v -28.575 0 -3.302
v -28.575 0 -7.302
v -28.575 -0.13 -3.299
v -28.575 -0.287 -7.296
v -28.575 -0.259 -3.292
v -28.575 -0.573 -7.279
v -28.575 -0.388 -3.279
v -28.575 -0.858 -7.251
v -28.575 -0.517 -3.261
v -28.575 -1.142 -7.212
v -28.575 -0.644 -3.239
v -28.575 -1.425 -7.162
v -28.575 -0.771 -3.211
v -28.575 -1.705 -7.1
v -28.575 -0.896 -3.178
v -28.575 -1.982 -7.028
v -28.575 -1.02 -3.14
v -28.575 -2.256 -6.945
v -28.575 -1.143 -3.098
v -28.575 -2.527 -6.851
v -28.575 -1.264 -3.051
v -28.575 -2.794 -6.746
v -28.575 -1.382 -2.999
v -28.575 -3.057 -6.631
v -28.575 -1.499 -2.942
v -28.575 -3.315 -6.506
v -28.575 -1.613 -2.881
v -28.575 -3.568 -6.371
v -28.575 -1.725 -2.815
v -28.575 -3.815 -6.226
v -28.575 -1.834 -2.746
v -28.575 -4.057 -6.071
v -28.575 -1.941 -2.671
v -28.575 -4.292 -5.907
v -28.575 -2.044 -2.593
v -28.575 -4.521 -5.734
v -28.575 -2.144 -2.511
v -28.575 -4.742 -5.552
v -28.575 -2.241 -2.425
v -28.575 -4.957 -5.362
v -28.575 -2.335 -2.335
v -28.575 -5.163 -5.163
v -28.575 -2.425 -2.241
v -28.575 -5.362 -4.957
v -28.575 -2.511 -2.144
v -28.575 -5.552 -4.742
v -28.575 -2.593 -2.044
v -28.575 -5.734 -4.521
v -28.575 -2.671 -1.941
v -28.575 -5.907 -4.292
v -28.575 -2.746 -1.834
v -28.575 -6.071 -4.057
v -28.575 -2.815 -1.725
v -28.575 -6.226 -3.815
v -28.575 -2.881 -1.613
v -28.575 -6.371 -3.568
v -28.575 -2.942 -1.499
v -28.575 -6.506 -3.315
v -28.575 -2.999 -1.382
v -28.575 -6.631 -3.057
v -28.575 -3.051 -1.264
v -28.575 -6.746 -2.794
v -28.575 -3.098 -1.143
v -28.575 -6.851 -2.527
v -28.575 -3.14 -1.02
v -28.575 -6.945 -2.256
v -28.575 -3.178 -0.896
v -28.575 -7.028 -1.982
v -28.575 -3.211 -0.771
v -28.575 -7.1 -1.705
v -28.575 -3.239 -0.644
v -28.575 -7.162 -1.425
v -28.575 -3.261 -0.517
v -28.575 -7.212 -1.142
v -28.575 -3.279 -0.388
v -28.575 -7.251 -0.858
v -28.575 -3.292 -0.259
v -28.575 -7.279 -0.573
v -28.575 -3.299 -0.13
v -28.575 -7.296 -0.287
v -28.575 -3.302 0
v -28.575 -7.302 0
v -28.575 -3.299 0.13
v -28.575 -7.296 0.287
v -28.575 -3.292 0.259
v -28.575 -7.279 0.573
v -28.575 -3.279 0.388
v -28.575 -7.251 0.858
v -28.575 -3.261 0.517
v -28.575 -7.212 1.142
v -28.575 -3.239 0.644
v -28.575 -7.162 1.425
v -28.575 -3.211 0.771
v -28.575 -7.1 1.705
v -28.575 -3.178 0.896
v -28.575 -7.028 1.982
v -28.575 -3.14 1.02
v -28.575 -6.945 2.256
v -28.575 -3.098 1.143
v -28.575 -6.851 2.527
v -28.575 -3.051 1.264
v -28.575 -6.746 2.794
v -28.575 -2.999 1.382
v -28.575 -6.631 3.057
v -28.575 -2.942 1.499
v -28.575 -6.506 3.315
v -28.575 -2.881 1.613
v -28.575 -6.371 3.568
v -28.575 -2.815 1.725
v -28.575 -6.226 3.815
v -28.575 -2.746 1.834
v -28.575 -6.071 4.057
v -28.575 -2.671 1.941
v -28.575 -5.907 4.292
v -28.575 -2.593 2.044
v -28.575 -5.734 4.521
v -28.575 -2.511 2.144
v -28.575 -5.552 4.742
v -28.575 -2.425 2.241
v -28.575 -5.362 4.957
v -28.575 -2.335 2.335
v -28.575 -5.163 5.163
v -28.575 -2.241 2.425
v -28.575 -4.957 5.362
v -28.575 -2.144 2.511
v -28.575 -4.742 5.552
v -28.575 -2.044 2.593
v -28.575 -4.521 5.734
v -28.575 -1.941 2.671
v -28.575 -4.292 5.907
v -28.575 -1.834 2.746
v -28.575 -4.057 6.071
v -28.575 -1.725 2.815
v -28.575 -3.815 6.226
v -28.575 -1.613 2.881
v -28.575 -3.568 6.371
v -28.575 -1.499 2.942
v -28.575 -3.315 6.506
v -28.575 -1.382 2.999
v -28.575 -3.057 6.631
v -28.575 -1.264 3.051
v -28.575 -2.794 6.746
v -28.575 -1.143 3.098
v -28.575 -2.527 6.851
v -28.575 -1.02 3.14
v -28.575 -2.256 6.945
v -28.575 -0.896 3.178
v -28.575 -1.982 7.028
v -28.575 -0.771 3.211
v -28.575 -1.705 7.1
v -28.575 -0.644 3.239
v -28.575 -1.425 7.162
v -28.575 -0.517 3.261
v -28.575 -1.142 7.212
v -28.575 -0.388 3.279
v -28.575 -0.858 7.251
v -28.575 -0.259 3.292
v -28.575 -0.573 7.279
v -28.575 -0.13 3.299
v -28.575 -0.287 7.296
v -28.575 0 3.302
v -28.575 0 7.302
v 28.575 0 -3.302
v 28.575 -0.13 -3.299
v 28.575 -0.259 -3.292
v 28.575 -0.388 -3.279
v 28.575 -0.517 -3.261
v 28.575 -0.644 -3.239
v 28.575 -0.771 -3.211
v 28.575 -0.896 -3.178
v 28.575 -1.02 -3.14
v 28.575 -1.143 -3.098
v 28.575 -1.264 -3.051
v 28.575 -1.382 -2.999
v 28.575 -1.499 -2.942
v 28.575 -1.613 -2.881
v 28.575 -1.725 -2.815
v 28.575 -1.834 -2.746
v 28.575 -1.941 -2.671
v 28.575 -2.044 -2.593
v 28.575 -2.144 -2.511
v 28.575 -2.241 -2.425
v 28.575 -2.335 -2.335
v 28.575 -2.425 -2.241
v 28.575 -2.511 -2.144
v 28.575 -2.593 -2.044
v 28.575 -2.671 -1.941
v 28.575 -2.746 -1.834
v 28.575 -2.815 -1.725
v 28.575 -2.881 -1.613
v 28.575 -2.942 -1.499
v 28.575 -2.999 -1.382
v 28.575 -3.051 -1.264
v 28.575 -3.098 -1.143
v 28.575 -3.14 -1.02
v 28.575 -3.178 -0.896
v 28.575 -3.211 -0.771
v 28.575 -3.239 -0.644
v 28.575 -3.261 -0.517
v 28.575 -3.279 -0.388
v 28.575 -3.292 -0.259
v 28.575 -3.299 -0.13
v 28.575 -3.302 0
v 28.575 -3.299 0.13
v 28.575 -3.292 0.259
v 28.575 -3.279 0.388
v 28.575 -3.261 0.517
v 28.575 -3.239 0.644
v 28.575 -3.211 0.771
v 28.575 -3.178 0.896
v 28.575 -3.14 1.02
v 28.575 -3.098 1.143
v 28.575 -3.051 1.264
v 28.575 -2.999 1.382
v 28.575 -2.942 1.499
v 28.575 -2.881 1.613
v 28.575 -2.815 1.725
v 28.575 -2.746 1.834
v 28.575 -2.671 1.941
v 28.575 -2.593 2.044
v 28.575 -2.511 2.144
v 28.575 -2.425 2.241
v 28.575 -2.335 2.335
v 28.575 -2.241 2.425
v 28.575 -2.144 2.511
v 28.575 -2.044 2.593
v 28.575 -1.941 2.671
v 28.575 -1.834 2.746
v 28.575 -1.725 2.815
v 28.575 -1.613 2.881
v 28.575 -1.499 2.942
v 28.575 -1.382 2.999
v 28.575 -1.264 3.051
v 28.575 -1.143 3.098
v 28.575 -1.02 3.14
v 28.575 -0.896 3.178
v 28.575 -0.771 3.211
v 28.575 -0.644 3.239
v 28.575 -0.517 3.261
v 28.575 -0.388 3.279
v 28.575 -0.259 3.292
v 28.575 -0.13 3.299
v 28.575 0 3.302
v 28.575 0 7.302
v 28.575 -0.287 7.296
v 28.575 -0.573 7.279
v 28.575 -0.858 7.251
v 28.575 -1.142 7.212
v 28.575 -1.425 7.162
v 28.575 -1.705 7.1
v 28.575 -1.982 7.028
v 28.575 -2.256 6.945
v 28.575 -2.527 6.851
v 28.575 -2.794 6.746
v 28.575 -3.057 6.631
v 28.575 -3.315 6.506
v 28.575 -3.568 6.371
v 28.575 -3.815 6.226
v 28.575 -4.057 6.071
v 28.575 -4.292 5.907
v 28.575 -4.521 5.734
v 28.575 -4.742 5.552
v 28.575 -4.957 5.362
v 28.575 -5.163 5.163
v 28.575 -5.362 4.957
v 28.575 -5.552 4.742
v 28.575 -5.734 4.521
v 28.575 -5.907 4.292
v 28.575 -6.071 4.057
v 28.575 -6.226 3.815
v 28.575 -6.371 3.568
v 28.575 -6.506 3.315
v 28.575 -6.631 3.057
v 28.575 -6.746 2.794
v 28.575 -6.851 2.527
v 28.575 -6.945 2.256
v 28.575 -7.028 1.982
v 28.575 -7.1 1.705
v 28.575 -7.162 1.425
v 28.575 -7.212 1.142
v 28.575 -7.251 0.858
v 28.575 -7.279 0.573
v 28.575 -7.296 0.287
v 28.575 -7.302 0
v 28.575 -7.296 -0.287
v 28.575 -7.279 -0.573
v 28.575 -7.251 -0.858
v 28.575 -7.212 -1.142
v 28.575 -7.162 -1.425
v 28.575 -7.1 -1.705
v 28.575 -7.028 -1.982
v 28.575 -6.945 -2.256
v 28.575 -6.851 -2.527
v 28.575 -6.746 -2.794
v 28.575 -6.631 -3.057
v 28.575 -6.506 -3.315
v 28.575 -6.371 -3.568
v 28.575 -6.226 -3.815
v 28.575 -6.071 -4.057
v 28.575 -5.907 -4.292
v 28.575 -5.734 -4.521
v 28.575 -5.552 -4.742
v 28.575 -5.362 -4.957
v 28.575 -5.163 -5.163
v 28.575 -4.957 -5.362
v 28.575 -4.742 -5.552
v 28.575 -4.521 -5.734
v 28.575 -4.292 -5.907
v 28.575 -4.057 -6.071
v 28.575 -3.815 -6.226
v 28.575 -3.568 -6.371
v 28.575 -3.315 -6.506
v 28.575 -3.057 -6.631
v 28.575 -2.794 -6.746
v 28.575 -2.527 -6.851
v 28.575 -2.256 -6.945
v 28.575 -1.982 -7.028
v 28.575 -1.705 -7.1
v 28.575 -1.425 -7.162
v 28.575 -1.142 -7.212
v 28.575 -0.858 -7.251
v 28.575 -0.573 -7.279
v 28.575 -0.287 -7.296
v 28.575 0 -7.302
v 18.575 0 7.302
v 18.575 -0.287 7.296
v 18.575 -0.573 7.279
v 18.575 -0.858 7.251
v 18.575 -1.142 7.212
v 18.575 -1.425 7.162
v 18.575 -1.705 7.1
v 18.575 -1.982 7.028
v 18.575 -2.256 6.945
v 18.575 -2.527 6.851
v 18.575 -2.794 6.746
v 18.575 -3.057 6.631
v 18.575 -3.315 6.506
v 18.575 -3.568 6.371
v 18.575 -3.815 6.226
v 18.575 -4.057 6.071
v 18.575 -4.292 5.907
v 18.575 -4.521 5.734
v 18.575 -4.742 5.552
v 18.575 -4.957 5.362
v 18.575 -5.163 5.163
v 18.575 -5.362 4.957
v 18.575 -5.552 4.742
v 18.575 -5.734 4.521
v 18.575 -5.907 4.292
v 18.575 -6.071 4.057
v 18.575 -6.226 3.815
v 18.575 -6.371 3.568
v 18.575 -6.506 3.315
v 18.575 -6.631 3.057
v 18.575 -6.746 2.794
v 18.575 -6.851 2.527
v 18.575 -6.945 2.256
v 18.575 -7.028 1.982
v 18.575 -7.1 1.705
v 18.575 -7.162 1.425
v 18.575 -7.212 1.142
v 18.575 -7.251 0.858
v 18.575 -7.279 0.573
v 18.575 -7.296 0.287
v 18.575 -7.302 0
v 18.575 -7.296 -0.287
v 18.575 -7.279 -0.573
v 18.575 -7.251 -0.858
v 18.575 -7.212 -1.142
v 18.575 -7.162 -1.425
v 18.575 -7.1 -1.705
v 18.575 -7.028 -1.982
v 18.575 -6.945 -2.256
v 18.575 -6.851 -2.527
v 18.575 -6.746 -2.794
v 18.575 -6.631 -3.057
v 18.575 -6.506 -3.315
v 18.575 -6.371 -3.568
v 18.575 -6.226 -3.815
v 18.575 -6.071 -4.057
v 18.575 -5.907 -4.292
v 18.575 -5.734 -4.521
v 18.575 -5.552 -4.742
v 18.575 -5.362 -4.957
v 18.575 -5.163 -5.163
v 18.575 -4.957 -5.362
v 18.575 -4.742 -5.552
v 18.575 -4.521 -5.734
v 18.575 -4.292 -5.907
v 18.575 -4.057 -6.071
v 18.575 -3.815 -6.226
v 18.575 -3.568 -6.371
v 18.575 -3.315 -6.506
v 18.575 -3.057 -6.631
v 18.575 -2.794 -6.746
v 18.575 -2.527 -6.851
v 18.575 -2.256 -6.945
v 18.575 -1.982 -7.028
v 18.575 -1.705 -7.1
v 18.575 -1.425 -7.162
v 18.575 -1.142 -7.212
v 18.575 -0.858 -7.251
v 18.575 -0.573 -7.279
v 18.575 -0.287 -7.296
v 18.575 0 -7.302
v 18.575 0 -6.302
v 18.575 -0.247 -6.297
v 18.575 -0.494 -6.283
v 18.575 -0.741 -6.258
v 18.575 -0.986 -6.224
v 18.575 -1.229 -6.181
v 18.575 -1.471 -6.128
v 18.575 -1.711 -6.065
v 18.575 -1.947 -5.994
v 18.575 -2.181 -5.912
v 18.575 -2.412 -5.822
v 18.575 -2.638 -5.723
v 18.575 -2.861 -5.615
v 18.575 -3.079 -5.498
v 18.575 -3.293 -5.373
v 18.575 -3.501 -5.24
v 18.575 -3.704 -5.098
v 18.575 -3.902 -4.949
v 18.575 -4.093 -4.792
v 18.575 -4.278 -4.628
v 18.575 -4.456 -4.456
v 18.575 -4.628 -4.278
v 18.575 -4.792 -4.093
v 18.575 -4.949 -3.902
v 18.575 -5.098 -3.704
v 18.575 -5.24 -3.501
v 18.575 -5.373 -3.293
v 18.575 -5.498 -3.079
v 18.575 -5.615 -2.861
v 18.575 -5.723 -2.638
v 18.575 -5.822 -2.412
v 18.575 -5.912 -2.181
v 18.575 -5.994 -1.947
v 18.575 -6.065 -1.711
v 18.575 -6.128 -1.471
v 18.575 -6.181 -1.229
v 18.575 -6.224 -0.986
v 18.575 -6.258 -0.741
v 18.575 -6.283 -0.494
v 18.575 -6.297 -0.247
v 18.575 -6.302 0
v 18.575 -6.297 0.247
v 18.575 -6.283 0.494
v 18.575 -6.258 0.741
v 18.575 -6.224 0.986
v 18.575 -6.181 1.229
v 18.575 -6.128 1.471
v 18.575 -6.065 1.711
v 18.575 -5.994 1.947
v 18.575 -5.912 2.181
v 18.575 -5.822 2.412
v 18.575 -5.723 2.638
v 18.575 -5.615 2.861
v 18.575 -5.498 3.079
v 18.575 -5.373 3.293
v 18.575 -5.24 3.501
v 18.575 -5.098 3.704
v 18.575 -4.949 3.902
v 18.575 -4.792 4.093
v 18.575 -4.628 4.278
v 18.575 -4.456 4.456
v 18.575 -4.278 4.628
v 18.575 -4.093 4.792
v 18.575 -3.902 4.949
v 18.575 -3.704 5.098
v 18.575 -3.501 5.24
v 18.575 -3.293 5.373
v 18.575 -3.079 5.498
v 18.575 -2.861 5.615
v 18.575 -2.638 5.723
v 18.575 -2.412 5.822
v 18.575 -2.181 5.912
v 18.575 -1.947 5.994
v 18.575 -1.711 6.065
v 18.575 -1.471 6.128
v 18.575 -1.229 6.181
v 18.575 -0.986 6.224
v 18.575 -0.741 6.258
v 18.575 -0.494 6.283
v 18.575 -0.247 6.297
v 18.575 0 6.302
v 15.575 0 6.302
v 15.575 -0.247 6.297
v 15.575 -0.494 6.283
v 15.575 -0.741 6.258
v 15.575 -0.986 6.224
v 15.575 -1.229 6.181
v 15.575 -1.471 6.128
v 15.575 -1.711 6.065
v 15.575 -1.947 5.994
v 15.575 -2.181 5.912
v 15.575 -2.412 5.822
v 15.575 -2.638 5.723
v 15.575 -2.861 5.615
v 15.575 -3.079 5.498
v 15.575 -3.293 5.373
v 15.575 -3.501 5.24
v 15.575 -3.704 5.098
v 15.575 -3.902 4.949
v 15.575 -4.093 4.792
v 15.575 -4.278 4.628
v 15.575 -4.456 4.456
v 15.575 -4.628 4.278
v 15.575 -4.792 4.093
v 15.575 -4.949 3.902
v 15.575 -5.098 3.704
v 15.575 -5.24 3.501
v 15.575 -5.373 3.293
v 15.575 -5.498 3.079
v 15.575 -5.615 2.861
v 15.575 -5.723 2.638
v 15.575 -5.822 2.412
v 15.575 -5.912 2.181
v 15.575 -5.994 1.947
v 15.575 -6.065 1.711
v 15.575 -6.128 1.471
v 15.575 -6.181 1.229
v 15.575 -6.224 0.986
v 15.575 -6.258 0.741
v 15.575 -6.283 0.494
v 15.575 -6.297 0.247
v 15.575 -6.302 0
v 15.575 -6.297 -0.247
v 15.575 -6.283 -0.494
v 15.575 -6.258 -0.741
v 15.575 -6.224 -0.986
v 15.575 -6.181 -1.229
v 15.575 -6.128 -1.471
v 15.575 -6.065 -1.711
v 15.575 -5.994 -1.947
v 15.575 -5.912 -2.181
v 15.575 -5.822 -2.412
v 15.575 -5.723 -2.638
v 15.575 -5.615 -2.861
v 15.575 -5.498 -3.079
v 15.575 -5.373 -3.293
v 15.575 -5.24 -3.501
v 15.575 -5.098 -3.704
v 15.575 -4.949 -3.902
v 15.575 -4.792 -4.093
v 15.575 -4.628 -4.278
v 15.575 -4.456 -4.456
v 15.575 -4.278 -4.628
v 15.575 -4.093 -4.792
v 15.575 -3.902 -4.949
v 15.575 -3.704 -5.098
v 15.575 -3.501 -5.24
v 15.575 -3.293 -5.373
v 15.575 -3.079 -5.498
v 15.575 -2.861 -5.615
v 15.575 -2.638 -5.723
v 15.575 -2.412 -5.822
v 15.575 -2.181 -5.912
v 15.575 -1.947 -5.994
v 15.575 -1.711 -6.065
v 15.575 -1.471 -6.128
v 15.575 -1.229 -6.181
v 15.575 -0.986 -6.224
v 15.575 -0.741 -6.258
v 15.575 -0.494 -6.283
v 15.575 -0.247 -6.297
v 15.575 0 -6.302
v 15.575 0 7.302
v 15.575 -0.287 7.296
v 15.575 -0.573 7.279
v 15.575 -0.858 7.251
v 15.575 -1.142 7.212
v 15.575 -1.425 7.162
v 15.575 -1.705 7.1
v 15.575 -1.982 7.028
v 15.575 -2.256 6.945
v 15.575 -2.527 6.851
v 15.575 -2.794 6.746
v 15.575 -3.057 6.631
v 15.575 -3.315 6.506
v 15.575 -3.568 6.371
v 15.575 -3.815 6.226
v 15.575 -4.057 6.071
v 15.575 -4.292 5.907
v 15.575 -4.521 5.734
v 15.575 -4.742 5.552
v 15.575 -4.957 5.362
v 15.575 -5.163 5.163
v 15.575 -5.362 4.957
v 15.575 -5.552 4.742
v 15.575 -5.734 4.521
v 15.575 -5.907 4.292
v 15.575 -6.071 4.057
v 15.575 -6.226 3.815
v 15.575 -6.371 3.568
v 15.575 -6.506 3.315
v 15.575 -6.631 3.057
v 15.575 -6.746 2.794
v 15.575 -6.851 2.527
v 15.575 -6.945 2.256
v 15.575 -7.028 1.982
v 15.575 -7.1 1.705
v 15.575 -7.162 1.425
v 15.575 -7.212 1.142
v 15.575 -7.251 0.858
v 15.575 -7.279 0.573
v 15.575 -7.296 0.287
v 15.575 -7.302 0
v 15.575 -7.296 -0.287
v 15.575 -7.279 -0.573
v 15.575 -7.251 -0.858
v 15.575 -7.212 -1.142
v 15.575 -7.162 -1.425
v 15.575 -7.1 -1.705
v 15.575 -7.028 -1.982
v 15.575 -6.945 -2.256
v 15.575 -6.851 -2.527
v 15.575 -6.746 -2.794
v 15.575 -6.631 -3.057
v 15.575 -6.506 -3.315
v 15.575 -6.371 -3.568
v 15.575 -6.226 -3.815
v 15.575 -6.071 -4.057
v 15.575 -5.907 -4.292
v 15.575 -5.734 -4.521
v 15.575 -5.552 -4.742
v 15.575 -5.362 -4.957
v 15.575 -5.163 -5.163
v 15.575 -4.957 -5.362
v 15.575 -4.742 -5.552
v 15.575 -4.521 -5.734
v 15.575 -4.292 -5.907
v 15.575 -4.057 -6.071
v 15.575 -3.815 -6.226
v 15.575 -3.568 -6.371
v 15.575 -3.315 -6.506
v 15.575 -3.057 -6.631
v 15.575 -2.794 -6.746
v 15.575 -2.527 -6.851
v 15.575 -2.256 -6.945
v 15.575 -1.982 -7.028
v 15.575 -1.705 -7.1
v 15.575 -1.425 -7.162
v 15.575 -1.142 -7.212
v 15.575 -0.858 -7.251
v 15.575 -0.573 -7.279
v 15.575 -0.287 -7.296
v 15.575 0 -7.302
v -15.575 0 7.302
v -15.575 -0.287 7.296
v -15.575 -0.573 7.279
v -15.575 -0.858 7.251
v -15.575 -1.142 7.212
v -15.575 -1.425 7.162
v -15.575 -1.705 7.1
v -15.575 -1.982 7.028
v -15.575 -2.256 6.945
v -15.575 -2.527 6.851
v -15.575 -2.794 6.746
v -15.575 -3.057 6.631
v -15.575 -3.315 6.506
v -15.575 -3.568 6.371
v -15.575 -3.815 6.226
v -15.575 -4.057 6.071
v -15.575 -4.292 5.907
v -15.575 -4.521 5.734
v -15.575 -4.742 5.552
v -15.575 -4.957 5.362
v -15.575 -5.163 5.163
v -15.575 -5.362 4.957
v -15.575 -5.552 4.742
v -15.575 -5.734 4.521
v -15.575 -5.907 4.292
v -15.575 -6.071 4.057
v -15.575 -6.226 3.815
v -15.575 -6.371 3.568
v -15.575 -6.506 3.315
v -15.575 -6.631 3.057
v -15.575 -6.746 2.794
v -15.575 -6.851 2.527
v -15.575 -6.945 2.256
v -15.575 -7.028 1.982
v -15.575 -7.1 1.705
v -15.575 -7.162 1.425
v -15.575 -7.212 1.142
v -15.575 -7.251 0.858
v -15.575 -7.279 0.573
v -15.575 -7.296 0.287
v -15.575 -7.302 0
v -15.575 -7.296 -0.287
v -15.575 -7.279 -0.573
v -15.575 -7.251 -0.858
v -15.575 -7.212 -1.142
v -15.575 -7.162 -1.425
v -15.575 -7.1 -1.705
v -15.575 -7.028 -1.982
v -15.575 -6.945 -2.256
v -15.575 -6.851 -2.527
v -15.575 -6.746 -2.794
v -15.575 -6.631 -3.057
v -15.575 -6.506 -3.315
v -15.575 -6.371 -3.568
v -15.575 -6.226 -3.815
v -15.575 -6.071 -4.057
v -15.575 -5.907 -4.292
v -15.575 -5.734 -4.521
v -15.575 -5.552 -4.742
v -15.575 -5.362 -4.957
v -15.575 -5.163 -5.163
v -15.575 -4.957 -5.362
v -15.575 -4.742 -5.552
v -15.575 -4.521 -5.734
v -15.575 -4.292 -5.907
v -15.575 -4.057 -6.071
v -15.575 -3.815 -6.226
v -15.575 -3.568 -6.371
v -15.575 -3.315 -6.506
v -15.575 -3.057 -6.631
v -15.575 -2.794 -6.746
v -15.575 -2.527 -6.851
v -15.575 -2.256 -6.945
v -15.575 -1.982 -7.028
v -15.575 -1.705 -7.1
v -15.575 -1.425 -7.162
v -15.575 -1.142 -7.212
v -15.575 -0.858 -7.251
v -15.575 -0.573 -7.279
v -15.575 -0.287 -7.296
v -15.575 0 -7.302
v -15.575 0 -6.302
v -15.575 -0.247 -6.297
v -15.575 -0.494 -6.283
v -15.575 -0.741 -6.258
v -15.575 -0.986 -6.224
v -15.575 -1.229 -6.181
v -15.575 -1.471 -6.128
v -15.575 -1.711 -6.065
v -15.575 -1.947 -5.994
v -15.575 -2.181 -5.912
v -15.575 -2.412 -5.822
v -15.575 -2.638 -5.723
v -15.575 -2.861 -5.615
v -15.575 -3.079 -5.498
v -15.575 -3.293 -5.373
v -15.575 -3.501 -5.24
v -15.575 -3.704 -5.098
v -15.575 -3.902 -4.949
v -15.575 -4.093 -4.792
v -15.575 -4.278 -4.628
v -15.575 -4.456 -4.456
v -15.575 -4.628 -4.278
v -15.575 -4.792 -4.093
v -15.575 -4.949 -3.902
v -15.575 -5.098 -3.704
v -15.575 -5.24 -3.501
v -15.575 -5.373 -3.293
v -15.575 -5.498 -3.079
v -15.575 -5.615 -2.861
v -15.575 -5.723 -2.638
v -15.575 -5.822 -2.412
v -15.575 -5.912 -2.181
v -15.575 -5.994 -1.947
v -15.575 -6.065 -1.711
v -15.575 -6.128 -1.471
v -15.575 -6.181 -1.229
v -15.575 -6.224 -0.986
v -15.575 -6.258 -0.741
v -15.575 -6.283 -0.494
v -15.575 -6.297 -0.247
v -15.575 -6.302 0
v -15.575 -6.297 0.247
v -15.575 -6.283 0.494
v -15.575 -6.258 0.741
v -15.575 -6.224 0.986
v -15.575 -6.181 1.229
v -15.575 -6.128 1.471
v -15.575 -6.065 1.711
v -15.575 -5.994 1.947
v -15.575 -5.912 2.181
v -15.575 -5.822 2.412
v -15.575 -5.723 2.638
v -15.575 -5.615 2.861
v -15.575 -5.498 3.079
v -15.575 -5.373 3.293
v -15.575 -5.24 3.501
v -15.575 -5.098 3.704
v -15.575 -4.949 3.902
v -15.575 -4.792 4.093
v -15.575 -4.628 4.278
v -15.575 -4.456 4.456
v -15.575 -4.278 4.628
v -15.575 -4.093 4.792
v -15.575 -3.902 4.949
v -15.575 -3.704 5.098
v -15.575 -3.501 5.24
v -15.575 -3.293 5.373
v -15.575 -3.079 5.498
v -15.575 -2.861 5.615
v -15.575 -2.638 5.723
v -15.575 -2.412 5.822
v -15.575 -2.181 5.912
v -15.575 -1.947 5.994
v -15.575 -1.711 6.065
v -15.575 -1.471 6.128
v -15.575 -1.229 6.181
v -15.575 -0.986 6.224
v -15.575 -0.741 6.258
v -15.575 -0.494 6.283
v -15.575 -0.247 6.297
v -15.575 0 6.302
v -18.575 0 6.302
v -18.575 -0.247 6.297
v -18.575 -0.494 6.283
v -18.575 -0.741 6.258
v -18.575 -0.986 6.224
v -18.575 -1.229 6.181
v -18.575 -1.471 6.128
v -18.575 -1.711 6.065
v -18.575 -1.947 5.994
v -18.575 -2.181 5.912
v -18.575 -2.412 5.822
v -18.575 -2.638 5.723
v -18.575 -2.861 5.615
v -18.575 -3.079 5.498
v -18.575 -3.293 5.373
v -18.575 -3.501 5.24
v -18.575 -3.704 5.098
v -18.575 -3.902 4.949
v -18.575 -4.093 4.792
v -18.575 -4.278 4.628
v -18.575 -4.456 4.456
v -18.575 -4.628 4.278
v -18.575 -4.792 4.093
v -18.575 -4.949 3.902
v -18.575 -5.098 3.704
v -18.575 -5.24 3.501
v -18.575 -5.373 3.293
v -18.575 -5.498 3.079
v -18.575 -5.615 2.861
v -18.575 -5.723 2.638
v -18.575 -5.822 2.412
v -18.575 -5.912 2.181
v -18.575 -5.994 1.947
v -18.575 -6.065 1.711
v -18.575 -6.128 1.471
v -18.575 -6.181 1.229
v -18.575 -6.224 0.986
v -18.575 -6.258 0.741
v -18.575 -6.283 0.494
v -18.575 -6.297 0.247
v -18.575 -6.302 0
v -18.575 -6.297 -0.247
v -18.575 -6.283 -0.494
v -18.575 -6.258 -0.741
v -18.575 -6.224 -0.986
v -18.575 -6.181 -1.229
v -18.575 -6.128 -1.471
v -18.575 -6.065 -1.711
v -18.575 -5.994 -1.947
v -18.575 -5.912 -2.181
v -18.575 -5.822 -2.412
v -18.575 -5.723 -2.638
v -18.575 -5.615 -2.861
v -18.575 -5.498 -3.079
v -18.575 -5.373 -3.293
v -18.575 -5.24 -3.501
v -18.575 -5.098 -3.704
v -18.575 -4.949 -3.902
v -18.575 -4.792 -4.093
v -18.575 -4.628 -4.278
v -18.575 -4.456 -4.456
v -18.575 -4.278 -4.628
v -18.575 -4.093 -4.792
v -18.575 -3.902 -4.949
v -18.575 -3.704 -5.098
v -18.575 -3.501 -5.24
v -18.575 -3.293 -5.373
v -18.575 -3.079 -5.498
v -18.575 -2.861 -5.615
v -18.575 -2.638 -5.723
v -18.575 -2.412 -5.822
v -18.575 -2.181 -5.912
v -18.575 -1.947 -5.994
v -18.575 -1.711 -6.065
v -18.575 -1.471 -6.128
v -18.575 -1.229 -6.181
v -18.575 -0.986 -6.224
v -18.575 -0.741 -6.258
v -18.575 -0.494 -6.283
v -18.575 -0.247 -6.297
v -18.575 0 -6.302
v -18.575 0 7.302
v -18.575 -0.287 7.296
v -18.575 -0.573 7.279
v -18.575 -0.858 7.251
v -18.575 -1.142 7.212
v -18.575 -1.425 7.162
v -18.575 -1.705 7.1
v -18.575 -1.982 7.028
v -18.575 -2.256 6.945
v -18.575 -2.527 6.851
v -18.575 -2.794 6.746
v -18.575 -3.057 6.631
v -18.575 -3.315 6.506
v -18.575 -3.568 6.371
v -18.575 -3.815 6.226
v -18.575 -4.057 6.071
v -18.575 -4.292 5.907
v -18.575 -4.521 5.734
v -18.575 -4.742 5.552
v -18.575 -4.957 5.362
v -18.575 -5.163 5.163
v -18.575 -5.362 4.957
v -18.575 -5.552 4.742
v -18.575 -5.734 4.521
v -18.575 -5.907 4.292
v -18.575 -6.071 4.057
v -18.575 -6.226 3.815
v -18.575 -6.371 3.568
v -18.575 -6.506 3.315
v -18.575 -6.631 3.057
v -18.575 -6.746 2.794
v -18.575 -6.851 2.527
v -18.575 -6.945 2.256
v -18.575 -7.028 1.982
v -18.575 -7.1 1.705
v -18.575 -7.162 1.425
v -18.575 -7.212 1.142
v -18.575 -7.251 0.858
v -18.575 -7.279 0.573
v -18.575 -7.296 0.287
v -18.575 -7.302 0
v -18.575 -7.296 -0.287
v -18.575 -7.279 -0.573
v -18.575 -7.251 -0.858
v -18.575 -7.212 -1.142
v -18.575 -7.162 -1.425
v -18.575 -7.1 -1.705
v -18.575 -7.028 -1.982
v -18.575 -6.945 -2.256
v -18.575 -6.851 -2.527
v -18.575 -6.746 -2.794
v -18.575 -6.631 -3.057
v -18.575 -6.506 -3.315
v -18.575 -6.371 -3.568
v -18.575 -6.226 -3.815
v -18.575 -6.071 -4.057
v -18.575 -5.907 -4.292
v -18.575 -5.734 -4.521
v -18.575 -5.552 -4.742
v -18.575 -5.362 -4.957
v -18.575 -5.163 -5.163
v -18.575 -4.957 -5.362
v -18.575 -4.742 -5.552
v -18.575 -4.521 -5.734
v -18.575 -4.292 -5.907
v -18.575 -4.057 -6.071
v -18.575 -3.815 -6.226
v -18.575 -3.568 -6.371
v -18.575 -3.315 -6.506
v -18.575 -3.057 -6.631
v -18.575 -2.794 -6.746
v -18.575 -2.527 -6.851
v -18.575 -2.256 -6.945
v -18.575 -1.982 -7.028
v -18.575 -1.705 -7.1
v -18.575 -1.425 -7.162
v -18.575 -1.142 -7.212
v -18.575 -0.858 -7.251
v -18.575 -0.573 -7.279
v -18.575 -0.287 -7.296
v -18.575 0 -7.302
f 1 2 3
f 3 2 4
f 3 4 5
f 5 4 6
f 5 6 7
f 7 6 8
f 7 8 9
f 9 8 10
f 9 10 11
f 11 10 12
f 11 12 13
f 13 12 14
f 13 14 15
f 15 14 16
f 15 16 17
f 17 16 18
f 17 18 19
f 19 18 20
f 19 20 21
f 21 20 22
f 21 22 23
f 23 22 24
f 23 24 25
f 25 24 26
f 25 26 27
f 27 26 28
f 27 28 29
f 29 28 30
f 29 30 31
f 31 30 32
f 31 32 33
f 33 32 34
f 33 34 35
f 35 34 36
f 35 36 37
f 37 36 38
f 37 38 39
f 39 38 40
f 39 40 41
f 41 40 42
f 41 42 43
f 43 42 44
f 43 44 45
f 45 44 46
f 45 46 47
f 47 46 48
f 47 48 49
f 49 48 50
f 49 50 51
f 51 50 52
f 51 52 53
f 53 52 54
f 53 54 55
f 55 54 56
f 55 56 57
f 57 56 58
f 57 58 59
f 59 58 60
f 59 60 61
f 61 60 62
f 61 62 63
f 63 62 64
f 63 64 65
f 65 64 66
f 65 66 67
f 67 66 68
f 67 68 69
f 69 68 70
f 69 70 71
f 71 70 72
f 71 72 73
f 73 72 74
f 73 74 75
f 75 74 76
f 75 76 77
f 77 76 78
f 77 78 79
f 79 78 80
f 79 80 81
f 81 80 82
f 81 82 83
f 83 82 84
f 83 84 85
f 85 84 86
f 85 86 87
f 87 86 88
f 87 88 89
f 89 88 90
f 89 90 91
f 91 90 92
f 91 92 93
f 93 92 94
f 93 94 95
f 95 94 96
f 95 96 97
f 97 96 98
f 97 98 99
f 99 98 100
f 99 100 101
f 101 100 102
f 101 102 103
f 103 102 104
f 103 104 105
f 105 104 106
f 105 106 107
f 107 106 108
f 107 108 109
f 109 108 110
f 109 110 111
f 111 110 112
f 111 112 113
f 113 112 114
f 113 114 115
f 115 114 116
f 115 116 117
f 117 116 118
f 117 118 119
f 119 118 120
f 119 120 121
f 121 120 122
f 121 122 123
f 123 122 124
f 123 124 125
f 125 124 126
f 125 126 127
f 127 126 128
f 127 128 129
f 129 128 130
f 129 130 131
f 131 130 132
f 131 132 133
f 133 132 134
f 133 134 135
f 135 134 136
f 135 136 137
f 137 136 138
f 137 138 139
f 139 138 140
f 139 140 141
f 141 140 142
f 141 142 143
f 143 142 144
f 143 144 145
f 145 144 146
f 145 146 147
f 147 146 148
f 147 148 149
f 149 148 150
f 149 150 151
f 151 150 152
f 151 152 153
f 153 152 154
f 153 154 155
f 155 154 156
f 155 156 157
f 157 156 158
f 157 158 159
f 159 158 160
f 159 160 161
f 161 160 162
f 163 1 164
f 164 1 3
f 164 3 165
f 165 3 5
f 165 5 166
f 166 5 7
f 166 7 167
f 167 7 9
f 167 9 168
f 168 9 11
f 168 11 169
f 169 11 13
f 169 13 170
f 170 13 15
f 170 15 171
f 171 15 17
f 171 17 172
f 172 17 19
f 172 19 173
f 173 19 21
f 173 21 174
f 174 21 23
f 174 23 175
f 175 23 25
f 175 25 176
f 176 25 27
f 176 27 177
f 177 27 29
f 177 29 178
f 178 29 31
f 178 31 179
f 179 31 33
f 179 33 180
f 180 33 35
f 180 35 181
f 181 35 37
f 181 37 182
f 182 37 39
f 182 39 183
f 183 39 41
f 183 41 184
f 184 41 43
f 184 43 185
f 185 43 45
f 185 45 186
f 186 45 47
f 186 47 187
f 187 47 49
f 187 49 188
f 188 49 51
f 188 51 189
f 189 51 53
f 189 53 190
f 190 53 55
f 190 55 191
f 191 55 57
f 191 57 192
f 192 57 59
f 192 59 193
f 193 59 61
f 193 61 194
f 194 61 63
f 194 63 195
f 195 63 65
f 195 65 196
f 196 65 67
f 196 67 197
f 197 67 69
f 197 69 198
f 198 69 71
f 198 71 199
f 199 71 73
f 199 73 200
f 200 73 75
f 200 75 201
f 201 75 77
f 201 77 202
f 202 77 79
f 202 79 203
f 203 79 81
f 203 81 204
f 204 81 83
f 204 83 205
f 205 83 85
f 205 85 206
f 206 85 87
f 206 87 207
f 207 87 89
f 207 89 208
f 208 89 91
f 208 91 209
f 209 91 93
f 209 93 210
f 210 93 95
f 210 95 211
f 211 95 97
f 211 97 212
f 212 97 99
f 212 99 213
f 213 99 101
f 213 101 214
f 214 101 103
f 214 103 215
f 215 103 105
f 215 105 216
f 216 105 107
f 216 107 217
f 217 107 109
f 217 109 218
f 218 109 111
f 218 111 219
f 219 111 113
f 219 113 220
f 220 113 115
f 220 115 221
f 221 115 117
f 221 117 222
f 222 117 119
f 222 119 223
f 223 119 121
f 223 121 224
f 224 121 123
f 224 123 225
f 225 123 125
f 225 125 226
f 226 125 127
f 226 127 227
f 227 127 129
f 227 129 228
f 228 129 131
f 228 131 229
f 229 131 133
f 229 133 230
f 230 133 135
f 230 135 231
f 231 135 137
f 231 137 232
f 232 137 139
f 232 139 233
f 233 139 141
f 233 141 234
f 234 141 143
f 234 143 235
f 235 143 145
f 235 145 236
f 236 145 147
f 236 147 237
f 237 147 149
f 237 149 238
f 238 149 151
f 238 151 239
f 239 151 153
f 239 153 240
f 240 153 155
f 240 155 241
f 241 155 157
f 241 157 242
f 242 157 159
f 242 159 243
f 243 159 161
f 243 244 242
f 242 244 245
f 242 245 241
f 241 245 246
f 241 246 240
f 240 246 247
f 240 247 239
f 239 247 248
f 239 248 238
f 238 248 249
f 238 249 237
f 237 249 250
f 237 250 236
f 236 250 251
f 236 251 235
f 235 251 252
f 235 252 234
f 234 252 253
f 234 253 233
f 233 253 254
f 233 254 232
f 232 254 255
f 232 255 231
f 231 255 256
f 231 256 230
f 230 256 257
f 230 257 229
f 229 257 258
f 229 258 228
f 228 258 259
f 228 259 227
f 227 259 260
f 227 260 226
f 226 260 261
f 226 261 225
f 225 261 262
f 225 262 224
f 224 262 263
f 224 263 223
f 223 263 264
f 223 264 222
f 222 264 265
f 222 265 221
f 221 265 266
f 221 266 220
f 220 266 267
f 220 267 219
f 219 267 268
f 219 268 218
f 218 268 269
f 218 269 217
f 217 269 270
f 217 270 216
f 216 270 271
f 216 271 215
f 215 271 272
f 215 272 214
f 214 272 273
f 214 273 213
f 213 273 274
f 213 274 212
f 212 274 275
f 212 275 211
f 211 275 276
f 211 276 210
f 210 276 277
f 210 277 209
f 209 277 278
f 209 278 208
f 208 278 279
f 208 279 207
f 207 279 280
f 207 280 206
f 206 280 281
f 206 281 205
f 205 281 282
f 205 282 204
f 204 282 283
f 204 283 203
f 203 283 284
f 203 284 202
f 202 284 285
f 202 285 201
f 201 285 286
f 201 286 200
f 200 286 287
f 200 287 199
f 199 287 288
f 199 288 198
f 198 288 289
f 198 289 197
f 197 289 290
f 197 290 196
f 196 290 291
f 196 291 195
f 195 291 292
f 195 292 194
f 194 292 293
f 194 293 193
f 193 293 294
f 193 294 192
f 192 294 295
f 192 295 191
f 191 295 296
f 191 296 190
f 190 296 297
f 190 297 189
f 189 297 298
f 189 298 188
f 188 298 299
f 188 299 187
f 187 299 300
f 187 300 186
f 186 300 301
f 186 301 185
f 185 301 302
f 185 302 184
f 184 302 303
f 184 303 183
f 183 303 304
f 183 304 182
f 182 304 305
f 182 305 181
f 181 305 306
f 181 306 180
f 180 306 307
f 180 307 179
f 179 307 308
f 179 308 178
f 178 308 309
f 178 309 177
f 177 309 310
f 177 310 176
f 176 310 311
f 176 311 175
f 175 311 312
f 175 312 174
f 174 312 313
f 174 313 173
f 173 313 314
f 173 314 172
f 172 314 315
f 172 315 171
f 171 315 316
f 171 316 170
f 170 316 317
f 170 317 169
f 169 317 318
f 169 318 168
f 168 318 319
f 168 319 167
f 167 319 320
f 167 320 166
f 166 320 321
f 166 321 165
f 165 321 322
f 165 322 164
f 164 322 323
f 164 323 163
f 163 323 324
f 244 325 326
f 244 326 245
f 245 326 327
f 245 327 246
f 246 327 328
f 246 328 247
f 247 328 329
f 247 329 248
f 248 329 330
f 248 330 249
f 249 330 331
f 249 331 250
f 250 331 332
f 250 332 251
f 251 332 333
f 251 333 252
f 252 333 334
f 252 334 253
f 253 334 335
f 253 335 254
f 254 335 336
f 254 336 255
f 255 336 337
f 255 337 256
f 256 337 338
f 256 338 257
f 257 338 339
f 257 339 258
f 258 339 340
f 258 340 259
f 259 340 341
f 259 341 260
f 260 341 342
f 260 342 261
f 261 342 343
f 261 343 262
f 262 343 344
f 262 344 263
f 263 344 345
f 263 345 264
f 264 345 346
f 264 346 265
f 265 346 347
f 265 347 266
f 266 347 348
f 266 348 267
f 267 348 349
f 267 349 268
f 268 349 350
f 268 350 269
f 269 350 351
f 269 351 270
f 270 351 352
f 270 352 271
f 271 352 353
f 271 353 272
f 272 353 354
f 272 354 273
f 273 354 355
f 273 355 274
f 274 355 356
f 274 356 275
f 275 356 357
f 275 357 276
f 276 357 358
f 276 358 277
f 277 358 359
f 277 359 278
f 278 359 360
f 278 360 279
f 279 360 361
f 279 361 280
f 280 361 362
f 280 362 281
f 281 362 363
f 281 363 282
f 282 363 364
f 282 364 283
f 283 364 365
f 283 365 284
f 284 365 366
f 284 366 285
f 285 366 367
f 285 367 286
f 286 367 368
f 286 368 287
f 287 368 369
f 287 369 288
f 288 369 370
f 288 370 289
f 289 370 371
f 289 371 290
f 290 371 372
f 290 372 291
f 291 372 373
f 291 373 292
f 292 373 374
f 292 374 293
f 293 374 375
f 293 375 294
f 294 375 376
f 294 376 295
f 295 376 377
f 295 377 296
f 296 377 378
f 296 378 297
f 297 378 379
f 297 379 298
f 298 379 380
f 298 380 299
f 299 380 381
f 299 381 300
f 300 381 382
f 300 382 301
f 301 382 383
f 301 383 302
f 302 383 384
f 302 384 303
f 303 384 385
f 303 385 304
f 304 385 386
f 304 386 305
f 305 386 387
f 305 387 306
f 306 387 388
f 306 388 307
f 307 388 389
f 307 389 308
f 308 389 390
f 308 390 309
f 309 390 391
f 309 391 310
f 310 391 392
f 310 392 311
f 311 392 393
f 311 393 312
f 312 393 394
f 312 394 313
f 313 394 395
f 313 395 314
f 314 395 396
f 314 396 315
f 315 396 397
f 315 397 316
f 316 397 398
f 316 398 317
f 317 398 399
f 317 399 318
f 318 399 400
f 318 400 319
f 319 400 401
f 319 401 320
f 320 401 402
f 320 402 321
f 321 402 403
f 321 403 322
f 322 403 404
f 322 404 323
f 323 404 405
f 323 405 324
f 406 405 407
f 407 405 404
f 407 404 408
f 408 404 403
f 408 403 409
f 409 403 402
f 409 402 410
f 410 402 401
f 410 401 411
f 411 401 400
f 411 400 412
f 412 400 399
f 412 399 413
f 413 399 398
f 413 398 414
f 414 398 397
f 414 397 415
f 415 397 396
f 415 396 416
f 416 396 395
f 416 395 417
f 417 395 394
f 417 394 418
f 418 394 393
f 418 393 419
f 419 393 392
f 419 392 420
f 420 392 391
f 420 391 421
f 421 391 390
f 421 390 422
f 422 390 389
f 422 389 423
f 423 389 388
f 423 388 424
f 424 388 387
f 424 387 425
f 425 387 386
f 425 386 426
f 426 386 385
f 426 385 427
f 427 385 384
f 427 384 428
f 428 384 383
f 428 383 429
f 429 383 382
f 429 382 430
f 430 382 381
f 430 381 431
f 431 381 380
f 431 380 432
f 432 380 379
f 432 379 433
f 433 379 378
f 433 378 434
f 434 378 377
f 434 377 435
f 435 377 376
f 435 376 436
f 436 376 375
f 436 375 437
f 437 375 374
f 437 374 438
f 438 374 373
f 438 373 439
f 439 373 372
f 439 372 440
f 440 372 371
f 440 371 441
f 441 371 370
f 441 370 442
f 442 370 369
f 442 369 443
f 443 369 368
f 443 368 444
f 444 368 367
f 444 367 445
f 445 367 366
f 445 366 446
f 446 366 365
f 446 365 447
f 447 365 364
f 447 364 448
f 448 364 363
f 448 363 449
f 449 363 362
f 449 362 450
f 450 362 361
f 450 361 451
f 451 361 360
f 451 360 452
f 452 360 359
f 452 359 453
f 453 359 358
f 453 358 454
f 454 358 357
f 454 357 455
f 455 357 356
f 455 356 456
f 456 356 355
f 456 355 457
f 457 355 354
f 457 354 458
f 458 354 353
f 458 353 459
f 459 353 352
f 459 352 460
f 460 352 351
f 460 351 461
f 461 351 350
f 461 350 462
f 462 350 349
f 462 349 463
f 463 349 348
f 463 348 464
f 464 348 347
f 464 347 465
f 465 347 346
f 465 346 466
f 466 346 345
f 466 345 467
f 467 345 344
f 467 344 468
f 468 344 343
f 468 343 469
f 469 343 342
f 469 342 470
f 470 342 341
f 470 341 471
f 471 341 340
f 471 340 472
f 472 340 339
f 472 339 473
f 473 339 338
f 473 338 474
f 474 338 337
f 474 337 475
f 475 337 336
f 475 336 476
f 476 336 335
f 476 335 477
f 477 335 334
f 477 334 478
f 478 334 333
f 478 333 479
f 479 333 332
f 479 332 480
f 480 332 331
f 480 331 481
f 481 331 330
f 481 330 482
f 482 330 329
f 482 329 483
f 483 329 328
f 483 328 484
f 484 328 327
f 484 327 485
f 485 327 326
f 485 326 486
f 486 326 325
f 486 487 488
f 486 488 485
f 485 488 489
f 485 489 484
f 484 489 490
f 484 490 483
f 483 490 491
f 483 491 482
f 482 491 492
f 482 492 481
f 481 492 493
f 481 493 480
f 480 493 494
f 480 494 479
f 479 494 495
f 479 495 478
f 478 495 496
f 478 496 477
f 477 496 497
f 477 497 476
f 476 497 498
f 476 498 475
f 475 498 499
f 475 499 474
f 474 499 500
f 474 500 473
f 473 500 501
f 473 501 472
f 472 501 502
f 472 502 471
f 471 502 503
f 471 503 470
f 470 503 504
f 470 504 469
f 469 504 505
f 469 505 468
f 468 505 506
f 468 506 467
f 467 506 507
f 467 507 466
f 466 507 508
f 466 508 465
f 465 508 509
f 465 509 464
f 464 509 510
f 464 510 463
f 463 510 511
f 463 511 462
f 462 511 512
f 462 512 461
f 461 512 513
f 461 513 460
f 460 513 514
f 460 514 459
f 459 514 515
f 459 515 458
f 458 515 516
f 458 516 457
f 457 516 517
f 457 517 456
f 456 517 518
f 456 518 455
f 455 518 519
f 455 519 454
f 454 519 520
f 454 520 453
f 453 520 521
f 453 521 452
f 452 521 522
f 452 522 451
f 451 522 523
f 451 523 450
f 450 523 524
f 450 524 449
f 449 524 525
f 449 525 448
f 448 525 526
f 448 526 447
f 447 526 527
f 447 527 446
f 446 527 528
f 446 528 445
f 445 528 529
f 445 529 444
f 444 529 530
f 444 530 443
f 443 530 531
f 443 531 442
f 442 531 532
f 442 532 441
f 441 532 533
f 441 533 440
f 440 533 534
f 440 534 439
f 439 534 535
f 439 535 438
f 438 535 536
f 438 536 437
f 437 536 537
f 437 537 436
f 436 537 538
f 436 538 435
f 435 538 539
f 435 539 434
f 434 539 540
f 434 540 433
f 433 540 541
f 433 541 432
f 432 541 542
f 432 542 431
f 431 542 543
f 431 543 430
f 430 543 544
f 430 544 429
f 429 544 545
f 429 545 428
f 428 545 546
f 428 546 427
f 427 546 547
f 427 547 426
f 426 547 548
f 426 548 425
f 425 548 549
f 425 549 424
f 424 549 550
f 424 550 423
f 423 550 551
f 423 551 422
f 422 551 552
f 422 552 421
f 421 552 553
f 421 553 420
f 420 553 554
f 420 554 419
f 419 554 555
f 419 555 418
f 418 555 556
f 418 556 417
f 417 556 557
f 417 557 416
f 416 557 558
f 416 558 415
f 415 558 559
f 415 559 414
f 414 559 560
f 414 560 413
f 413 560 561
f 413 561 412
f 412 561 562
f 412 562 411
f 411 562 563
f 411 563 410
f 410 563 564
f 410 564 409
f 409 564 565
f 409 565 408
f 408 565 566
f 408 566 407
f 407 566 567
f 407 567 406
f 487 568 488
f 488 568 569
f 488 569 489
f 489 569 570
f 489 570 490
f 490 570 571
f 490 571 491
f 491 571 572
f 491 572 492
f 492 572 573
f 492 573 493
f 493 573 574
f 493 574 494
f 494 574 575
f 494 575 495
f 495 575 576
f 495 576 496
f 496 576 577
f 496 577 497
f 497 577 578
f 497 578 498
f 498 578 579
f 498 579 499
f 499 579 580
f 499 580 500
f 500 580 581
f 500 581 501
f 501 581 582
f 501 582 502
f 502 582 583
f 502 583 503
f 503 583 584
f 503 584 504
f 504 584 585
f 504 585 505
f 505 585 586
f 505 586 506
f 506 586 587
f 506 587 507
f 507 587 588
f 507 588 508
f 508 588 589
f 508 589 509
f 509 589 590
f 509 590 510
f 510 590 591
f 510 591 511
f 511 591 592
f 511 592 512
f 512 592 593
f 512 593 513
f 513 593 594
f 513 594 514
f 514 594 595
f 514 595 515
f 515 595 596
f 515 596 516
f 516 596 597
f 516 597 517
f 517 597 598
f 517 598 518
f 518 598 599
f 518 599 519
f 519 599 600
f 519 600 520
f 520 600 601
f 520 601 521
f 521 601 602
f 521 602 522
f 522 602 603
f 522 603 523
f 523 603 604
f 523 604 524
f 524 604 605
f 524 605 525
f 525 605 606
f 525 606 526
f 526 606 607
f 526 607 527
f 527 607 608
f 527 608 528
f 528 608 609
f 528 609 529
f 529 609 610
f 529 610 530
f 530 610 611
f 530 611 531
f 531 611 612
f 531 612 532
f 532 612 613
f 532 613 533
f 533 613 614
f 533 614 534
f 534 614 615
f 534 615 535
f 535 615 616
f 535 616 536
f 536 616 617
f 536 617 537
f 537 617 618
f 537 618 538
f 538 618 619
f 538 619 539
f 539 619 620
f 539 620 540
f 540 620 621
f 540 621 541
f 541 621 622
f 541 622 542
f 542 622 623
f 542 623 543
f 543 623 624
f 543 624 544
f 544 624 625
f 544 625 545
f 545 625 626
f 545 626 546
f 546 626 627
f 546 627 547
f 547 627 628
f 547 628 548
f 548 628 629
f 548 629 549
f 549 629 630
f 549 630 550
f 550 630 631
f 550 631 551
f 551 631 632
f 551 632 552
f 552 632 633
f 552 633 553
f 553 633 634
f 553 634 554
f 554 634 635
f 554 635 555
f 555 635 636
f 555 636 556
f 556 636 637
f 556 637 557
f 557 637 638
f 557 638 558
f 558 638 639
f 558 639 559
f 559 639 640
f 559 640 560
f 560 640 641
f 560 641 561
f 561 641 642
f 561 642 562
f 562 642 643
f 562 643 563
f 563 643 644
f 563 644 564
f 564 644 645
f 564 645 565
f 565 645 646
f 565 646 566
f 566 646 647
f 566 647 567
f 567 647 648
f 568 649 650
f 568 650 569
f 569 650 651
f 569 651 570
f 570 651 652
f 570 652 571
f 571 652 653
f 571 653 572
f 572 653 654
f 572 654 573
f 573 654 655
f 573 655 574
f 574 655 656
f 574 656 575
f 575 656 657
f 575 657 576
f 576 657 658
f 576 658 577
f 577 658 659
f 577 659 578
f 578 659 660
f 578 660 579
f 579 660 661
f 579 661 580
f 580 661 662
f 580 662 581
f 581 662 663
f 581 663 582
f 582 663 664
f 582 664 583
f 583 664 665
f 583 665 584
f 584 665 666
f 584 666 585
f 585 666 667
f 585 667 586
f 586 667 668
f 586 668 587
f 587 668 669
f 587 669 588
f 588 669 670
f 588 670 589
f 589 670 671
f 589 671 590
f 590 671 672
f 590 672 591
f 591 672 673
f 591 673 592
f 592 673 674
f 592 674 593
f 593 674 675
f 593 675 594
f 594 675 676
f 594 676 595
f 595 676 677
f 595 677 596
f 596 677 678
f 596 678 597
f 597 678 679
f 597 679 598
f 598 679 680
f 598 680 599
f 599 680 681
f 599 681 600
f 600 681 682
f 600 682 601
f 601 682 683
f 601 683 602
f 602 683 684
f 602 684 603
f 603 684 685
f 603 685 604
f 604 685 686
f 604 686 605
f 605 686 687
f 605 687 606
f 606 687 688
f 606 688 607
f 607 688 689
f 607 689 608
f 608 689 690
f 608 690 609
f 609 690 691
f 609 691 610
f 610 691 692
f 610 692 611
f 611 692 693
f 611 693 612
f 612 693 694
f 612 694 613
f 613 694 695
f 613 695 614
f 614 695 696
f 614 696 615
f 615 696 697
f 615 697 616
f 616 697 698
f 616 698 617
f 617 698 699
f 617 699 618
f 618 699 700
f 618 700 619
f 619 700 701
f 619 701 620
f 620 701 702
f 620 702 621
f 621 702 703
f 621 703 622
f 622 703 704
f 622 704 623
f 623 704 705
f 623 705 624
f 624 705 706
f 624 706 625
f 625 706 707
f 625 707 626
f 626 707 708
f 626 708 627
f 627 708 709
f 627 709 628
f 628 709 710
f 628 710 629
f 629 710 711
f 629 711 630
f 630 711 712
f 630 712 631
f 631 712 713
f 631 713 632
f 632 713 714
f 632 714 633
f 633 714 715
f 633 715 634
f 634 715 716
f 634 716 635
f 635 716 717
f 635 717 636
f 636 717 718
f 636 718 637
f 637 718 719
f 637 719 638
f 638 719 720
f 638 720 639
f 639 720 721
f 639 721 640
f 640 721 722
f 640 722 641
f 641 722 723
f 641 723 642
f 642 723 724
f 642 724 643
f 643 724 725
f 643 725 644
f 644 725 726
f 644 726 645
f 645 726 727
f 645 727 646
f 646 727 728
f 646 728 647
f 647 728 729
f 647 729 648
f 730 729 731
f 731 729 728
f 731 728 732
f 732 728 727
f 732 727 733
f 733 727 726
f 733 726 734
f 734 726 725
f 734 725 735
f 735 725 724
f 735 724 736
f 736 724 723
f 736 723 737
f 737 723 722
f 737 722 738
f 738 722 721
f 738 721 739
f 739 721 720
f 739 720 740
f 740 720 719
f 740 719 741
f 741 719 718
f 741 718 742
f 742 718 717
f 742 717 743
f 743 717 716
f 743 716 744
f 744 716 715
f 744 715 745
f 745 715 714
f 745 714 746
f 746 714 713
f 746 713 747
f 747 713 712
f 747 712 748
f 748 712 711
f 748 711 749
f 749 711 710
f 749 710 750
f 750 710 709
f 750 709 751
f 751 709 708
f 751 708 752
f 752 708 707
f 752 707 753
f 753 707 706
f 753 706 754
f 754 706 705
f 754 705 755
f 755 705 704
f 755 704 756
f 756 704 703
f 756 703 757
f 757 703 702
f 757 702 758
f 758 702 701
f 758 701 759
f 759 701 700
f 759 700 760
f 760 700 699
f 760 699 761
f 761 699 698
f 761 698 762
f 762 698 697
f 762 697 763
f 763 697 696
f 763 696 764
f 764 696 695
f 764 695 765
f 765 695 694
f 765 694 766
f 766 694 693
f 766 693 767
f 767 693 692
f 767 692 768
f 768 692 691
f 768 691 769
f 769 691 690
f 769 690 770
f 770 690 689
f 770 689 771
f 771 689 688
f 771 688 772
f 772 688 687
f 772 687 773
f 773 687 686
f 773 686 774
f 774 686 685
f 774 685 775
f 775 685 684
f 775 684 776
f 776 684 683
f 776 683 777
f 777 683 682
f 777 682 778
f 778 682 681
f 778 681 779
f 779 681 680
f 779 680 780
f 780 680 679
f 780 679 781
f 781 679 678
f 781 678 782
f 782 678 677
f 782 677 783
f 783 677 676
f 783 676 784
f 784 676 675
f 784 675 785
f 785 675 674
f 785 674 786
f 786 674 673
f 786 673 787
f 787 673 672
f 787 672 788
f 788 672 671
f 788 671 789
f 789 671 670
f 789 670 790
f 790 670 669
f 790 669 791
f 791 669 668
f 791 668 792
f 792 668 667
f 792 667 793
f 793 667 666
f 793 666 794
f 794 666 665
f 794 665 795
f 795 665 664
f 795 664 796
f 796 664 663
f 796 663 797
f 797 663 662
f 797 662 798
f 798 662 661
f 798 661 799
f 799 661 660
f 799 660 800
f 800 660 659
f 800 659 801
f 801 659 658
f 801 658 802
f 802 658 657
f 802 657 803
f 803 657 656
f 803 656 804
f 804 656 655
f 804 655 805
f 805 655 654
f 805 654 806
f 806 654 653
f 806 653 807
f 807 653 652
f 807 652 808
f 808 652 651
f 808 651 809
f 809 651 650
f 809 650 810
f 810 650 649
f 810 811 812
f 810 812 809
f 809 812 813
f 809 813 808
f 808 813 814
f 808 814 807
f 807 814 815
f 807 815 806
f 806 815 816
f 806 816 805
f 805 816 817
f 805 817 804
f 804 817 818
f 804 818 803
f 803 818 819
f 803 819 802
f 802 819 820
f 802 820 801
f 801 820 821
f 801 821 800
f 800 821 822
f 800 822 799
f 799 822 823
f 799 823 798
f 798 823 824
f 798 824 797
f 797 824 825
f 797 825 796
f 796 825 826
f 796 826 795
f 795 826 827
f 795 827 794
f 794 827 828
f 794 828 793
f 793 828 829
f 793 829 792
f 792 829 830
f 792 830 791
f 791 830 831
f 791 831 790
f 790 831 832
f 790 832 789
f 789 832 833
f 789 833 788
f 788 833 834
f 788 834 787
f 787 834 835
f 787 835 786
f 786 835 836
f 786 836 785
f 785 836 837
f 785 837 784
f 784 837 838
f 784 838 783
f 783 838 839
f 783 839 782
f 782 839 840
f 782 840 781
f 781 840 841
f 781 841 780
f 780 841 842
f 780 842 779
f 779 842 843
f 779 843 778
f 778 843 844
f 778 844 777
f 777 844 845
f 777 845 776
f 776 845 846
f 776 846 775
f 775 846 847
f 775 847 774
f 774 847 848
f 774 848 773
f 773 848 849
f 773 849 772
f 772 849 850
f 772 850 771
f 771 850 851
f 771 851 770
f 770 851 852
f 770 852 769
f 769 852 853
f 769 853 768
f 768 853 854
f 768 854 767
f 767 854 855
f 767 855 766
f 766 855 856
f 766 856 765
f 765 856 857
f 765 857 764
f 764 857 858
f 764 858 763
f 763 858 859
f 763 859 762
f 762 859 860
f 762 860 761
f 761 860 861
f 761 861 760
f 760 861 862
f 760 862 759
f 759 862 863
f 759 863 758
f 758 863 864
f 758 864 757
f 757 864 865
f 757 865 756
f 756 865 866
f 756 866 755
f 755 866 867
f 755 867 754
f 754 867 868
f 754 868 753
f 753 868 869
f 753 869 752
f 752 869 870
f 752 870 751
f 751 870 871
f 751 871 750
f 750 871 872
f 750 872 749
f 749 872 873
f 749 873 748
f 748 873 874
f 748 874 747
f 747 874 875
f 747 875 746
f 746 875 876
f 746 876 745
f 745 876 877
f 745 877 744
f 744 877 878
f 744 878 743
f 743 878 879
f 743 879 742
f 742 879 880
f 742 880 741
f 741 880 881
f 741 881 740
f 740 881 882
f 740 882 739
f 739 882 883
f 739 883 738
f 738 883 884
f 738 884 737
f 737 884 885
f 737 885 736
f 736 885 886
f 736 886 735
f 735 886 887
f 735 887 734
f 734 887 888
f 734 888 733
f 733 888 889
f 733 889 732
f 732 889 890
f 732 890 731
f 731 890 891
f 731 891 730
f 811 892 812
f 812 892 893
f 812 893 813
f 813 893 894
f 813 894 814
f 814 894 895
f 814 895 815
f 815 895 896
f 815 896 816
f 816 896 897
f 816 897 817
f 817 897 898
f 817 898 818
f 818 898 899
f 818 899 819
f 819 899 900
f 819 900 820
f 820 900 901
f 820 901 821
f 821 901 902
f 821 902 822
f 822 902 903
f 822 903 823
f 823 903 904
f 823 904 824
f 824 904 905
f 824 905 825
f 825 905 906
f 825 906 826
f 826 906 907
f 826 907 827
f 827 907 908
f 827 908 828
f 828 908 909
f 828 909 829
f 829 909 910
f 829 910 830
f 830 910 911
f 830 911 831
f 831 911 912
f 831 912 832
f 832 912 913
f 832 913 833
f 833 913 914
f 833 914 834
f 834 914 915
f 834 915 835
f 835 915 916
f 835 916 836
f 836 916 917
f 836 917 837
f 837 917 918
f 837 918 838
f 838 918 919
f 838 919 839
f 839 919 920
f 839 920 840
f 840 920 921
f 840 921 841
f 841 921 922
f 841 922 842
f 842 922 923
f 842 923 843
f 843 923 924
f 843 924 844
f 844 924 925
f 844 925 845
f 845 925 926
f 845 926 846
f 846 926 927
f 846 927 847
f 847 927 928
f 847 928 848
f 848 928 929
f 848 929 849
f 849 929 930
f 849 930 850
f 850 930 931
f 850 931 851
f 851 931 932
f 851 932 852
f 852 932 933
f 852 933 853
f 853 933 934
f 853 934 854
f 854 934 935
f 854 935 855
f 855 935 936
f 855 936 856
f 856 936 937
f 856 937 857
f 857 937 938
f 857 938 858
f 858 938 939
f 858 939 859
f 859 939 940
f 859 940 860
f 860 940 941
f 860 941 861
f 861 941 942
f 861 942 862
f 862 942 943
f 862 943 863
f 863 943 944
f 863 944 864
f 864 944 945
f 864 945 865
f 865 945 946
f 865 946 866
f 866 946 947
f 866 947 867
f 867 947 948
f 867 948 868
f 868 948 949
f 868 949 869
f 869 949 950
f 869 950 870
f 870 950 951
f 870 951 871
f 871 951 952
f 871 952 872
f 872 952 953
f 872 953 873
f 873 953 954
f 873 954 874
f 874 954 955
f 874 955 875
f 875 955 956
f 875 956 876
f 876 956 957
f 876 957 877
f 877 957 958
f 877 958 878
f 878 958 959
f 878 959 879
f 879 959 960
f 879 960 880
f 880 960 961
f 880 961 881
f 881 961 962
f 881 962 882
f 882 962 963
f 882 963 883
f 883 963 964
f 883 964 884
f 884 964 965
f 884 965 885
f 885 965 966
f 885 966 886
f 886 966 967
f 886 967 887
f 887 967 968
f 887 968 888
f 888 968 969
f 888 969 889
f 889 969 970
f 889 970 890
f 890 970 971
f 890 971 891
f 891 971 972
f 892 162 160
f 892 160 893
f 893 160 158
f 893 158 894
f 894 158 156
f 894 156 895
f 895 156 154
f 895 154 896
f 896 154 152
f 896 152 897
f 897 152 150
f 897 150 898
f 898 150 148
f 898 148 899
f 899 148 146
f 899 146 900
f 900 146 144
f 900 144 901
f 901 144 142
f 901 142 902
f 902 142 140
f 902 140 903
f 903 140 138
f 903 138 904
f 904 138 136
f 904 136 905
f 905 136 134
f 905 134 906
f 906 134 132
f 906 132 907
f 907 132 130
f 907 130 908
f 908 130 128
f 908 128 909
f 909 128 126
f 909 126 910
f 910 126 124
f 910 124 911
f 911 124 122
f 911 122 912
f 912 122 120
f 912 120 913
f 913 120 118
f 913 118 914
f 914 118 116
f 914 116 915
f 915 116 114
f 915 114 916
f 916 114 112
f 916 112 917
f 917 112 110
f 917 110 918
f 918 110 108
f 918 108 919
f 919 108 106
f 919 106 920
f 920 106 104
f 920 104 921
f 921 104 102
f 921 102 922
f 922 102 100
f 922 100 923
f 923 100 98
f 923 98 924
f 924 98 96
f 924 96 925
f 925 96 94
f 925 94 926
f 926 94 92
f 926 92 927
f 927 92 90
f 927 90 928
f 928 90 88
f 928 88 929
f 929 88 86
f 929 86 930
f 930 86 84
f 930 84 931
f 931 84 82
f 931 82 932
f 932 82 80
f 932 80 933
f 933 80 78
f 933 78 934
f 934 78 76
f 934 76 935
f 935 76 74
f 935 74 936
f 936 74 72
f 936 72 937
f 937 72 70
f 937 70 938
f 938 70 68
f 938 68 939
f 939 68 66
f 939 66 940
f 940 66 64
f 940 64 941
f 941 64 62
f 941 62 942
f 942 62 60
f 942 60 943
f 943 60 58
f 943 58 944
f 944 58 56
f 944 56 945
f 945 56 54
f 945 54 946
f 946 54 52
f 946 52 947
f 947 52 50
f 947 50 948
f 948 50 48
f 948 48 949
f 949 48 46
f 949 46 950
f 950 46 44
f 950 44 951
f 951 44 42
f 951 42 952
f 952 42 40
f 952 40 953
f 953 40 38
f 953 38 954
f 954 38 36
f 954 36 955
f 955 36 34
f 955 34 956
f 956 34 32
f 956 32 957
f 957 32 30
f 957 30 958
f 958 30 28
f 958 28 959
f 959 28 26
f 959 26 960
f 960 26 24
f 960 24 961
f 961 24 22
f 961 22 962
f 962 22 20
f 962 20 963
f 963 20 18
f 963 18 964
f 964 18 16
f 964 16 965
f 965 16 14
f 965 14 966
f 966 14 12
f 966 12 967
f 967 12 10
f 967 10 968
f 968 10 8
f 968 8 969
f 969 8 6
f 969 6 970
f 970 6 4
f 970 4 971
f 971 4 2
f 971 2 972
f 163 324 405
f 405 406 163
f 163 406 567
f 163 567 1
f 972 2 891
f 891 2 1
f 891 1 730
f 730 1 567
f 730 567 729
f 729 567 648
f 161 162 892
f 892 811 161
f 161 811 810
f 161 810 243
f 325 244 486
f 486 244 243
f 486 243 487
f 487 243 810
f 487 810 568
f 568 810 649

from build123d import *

# Parameters (mm, degrees)
REVOLVE1_ANGLE = 180


with BuildPart() as part:
    # Sketch2 → Revolve1 (revolve)
    with BuildSketch(Plane(origin=(0, 0, 0), x_dir=(1, 0, 0), z_dir=(0, 1, 0))):
        Polygon((-28.575, -3.302), (28.575, -3.302), (28.575, -7.302), (18.575, -7.302), (18.575, -6.302), (15.575, -6.302), (15.575, -7.302), (-15.575, -7.302), (-15.575, -6.302), (-18.575, -6.302), (-18.575, -7.302), (-28.575, -7.302), align=None)
    revolve(axis=Axis((-28.575, 0, 0), (1, 0, 0)), revolution_arc=REVOLVE1_ANGLE)


solid = part.part
